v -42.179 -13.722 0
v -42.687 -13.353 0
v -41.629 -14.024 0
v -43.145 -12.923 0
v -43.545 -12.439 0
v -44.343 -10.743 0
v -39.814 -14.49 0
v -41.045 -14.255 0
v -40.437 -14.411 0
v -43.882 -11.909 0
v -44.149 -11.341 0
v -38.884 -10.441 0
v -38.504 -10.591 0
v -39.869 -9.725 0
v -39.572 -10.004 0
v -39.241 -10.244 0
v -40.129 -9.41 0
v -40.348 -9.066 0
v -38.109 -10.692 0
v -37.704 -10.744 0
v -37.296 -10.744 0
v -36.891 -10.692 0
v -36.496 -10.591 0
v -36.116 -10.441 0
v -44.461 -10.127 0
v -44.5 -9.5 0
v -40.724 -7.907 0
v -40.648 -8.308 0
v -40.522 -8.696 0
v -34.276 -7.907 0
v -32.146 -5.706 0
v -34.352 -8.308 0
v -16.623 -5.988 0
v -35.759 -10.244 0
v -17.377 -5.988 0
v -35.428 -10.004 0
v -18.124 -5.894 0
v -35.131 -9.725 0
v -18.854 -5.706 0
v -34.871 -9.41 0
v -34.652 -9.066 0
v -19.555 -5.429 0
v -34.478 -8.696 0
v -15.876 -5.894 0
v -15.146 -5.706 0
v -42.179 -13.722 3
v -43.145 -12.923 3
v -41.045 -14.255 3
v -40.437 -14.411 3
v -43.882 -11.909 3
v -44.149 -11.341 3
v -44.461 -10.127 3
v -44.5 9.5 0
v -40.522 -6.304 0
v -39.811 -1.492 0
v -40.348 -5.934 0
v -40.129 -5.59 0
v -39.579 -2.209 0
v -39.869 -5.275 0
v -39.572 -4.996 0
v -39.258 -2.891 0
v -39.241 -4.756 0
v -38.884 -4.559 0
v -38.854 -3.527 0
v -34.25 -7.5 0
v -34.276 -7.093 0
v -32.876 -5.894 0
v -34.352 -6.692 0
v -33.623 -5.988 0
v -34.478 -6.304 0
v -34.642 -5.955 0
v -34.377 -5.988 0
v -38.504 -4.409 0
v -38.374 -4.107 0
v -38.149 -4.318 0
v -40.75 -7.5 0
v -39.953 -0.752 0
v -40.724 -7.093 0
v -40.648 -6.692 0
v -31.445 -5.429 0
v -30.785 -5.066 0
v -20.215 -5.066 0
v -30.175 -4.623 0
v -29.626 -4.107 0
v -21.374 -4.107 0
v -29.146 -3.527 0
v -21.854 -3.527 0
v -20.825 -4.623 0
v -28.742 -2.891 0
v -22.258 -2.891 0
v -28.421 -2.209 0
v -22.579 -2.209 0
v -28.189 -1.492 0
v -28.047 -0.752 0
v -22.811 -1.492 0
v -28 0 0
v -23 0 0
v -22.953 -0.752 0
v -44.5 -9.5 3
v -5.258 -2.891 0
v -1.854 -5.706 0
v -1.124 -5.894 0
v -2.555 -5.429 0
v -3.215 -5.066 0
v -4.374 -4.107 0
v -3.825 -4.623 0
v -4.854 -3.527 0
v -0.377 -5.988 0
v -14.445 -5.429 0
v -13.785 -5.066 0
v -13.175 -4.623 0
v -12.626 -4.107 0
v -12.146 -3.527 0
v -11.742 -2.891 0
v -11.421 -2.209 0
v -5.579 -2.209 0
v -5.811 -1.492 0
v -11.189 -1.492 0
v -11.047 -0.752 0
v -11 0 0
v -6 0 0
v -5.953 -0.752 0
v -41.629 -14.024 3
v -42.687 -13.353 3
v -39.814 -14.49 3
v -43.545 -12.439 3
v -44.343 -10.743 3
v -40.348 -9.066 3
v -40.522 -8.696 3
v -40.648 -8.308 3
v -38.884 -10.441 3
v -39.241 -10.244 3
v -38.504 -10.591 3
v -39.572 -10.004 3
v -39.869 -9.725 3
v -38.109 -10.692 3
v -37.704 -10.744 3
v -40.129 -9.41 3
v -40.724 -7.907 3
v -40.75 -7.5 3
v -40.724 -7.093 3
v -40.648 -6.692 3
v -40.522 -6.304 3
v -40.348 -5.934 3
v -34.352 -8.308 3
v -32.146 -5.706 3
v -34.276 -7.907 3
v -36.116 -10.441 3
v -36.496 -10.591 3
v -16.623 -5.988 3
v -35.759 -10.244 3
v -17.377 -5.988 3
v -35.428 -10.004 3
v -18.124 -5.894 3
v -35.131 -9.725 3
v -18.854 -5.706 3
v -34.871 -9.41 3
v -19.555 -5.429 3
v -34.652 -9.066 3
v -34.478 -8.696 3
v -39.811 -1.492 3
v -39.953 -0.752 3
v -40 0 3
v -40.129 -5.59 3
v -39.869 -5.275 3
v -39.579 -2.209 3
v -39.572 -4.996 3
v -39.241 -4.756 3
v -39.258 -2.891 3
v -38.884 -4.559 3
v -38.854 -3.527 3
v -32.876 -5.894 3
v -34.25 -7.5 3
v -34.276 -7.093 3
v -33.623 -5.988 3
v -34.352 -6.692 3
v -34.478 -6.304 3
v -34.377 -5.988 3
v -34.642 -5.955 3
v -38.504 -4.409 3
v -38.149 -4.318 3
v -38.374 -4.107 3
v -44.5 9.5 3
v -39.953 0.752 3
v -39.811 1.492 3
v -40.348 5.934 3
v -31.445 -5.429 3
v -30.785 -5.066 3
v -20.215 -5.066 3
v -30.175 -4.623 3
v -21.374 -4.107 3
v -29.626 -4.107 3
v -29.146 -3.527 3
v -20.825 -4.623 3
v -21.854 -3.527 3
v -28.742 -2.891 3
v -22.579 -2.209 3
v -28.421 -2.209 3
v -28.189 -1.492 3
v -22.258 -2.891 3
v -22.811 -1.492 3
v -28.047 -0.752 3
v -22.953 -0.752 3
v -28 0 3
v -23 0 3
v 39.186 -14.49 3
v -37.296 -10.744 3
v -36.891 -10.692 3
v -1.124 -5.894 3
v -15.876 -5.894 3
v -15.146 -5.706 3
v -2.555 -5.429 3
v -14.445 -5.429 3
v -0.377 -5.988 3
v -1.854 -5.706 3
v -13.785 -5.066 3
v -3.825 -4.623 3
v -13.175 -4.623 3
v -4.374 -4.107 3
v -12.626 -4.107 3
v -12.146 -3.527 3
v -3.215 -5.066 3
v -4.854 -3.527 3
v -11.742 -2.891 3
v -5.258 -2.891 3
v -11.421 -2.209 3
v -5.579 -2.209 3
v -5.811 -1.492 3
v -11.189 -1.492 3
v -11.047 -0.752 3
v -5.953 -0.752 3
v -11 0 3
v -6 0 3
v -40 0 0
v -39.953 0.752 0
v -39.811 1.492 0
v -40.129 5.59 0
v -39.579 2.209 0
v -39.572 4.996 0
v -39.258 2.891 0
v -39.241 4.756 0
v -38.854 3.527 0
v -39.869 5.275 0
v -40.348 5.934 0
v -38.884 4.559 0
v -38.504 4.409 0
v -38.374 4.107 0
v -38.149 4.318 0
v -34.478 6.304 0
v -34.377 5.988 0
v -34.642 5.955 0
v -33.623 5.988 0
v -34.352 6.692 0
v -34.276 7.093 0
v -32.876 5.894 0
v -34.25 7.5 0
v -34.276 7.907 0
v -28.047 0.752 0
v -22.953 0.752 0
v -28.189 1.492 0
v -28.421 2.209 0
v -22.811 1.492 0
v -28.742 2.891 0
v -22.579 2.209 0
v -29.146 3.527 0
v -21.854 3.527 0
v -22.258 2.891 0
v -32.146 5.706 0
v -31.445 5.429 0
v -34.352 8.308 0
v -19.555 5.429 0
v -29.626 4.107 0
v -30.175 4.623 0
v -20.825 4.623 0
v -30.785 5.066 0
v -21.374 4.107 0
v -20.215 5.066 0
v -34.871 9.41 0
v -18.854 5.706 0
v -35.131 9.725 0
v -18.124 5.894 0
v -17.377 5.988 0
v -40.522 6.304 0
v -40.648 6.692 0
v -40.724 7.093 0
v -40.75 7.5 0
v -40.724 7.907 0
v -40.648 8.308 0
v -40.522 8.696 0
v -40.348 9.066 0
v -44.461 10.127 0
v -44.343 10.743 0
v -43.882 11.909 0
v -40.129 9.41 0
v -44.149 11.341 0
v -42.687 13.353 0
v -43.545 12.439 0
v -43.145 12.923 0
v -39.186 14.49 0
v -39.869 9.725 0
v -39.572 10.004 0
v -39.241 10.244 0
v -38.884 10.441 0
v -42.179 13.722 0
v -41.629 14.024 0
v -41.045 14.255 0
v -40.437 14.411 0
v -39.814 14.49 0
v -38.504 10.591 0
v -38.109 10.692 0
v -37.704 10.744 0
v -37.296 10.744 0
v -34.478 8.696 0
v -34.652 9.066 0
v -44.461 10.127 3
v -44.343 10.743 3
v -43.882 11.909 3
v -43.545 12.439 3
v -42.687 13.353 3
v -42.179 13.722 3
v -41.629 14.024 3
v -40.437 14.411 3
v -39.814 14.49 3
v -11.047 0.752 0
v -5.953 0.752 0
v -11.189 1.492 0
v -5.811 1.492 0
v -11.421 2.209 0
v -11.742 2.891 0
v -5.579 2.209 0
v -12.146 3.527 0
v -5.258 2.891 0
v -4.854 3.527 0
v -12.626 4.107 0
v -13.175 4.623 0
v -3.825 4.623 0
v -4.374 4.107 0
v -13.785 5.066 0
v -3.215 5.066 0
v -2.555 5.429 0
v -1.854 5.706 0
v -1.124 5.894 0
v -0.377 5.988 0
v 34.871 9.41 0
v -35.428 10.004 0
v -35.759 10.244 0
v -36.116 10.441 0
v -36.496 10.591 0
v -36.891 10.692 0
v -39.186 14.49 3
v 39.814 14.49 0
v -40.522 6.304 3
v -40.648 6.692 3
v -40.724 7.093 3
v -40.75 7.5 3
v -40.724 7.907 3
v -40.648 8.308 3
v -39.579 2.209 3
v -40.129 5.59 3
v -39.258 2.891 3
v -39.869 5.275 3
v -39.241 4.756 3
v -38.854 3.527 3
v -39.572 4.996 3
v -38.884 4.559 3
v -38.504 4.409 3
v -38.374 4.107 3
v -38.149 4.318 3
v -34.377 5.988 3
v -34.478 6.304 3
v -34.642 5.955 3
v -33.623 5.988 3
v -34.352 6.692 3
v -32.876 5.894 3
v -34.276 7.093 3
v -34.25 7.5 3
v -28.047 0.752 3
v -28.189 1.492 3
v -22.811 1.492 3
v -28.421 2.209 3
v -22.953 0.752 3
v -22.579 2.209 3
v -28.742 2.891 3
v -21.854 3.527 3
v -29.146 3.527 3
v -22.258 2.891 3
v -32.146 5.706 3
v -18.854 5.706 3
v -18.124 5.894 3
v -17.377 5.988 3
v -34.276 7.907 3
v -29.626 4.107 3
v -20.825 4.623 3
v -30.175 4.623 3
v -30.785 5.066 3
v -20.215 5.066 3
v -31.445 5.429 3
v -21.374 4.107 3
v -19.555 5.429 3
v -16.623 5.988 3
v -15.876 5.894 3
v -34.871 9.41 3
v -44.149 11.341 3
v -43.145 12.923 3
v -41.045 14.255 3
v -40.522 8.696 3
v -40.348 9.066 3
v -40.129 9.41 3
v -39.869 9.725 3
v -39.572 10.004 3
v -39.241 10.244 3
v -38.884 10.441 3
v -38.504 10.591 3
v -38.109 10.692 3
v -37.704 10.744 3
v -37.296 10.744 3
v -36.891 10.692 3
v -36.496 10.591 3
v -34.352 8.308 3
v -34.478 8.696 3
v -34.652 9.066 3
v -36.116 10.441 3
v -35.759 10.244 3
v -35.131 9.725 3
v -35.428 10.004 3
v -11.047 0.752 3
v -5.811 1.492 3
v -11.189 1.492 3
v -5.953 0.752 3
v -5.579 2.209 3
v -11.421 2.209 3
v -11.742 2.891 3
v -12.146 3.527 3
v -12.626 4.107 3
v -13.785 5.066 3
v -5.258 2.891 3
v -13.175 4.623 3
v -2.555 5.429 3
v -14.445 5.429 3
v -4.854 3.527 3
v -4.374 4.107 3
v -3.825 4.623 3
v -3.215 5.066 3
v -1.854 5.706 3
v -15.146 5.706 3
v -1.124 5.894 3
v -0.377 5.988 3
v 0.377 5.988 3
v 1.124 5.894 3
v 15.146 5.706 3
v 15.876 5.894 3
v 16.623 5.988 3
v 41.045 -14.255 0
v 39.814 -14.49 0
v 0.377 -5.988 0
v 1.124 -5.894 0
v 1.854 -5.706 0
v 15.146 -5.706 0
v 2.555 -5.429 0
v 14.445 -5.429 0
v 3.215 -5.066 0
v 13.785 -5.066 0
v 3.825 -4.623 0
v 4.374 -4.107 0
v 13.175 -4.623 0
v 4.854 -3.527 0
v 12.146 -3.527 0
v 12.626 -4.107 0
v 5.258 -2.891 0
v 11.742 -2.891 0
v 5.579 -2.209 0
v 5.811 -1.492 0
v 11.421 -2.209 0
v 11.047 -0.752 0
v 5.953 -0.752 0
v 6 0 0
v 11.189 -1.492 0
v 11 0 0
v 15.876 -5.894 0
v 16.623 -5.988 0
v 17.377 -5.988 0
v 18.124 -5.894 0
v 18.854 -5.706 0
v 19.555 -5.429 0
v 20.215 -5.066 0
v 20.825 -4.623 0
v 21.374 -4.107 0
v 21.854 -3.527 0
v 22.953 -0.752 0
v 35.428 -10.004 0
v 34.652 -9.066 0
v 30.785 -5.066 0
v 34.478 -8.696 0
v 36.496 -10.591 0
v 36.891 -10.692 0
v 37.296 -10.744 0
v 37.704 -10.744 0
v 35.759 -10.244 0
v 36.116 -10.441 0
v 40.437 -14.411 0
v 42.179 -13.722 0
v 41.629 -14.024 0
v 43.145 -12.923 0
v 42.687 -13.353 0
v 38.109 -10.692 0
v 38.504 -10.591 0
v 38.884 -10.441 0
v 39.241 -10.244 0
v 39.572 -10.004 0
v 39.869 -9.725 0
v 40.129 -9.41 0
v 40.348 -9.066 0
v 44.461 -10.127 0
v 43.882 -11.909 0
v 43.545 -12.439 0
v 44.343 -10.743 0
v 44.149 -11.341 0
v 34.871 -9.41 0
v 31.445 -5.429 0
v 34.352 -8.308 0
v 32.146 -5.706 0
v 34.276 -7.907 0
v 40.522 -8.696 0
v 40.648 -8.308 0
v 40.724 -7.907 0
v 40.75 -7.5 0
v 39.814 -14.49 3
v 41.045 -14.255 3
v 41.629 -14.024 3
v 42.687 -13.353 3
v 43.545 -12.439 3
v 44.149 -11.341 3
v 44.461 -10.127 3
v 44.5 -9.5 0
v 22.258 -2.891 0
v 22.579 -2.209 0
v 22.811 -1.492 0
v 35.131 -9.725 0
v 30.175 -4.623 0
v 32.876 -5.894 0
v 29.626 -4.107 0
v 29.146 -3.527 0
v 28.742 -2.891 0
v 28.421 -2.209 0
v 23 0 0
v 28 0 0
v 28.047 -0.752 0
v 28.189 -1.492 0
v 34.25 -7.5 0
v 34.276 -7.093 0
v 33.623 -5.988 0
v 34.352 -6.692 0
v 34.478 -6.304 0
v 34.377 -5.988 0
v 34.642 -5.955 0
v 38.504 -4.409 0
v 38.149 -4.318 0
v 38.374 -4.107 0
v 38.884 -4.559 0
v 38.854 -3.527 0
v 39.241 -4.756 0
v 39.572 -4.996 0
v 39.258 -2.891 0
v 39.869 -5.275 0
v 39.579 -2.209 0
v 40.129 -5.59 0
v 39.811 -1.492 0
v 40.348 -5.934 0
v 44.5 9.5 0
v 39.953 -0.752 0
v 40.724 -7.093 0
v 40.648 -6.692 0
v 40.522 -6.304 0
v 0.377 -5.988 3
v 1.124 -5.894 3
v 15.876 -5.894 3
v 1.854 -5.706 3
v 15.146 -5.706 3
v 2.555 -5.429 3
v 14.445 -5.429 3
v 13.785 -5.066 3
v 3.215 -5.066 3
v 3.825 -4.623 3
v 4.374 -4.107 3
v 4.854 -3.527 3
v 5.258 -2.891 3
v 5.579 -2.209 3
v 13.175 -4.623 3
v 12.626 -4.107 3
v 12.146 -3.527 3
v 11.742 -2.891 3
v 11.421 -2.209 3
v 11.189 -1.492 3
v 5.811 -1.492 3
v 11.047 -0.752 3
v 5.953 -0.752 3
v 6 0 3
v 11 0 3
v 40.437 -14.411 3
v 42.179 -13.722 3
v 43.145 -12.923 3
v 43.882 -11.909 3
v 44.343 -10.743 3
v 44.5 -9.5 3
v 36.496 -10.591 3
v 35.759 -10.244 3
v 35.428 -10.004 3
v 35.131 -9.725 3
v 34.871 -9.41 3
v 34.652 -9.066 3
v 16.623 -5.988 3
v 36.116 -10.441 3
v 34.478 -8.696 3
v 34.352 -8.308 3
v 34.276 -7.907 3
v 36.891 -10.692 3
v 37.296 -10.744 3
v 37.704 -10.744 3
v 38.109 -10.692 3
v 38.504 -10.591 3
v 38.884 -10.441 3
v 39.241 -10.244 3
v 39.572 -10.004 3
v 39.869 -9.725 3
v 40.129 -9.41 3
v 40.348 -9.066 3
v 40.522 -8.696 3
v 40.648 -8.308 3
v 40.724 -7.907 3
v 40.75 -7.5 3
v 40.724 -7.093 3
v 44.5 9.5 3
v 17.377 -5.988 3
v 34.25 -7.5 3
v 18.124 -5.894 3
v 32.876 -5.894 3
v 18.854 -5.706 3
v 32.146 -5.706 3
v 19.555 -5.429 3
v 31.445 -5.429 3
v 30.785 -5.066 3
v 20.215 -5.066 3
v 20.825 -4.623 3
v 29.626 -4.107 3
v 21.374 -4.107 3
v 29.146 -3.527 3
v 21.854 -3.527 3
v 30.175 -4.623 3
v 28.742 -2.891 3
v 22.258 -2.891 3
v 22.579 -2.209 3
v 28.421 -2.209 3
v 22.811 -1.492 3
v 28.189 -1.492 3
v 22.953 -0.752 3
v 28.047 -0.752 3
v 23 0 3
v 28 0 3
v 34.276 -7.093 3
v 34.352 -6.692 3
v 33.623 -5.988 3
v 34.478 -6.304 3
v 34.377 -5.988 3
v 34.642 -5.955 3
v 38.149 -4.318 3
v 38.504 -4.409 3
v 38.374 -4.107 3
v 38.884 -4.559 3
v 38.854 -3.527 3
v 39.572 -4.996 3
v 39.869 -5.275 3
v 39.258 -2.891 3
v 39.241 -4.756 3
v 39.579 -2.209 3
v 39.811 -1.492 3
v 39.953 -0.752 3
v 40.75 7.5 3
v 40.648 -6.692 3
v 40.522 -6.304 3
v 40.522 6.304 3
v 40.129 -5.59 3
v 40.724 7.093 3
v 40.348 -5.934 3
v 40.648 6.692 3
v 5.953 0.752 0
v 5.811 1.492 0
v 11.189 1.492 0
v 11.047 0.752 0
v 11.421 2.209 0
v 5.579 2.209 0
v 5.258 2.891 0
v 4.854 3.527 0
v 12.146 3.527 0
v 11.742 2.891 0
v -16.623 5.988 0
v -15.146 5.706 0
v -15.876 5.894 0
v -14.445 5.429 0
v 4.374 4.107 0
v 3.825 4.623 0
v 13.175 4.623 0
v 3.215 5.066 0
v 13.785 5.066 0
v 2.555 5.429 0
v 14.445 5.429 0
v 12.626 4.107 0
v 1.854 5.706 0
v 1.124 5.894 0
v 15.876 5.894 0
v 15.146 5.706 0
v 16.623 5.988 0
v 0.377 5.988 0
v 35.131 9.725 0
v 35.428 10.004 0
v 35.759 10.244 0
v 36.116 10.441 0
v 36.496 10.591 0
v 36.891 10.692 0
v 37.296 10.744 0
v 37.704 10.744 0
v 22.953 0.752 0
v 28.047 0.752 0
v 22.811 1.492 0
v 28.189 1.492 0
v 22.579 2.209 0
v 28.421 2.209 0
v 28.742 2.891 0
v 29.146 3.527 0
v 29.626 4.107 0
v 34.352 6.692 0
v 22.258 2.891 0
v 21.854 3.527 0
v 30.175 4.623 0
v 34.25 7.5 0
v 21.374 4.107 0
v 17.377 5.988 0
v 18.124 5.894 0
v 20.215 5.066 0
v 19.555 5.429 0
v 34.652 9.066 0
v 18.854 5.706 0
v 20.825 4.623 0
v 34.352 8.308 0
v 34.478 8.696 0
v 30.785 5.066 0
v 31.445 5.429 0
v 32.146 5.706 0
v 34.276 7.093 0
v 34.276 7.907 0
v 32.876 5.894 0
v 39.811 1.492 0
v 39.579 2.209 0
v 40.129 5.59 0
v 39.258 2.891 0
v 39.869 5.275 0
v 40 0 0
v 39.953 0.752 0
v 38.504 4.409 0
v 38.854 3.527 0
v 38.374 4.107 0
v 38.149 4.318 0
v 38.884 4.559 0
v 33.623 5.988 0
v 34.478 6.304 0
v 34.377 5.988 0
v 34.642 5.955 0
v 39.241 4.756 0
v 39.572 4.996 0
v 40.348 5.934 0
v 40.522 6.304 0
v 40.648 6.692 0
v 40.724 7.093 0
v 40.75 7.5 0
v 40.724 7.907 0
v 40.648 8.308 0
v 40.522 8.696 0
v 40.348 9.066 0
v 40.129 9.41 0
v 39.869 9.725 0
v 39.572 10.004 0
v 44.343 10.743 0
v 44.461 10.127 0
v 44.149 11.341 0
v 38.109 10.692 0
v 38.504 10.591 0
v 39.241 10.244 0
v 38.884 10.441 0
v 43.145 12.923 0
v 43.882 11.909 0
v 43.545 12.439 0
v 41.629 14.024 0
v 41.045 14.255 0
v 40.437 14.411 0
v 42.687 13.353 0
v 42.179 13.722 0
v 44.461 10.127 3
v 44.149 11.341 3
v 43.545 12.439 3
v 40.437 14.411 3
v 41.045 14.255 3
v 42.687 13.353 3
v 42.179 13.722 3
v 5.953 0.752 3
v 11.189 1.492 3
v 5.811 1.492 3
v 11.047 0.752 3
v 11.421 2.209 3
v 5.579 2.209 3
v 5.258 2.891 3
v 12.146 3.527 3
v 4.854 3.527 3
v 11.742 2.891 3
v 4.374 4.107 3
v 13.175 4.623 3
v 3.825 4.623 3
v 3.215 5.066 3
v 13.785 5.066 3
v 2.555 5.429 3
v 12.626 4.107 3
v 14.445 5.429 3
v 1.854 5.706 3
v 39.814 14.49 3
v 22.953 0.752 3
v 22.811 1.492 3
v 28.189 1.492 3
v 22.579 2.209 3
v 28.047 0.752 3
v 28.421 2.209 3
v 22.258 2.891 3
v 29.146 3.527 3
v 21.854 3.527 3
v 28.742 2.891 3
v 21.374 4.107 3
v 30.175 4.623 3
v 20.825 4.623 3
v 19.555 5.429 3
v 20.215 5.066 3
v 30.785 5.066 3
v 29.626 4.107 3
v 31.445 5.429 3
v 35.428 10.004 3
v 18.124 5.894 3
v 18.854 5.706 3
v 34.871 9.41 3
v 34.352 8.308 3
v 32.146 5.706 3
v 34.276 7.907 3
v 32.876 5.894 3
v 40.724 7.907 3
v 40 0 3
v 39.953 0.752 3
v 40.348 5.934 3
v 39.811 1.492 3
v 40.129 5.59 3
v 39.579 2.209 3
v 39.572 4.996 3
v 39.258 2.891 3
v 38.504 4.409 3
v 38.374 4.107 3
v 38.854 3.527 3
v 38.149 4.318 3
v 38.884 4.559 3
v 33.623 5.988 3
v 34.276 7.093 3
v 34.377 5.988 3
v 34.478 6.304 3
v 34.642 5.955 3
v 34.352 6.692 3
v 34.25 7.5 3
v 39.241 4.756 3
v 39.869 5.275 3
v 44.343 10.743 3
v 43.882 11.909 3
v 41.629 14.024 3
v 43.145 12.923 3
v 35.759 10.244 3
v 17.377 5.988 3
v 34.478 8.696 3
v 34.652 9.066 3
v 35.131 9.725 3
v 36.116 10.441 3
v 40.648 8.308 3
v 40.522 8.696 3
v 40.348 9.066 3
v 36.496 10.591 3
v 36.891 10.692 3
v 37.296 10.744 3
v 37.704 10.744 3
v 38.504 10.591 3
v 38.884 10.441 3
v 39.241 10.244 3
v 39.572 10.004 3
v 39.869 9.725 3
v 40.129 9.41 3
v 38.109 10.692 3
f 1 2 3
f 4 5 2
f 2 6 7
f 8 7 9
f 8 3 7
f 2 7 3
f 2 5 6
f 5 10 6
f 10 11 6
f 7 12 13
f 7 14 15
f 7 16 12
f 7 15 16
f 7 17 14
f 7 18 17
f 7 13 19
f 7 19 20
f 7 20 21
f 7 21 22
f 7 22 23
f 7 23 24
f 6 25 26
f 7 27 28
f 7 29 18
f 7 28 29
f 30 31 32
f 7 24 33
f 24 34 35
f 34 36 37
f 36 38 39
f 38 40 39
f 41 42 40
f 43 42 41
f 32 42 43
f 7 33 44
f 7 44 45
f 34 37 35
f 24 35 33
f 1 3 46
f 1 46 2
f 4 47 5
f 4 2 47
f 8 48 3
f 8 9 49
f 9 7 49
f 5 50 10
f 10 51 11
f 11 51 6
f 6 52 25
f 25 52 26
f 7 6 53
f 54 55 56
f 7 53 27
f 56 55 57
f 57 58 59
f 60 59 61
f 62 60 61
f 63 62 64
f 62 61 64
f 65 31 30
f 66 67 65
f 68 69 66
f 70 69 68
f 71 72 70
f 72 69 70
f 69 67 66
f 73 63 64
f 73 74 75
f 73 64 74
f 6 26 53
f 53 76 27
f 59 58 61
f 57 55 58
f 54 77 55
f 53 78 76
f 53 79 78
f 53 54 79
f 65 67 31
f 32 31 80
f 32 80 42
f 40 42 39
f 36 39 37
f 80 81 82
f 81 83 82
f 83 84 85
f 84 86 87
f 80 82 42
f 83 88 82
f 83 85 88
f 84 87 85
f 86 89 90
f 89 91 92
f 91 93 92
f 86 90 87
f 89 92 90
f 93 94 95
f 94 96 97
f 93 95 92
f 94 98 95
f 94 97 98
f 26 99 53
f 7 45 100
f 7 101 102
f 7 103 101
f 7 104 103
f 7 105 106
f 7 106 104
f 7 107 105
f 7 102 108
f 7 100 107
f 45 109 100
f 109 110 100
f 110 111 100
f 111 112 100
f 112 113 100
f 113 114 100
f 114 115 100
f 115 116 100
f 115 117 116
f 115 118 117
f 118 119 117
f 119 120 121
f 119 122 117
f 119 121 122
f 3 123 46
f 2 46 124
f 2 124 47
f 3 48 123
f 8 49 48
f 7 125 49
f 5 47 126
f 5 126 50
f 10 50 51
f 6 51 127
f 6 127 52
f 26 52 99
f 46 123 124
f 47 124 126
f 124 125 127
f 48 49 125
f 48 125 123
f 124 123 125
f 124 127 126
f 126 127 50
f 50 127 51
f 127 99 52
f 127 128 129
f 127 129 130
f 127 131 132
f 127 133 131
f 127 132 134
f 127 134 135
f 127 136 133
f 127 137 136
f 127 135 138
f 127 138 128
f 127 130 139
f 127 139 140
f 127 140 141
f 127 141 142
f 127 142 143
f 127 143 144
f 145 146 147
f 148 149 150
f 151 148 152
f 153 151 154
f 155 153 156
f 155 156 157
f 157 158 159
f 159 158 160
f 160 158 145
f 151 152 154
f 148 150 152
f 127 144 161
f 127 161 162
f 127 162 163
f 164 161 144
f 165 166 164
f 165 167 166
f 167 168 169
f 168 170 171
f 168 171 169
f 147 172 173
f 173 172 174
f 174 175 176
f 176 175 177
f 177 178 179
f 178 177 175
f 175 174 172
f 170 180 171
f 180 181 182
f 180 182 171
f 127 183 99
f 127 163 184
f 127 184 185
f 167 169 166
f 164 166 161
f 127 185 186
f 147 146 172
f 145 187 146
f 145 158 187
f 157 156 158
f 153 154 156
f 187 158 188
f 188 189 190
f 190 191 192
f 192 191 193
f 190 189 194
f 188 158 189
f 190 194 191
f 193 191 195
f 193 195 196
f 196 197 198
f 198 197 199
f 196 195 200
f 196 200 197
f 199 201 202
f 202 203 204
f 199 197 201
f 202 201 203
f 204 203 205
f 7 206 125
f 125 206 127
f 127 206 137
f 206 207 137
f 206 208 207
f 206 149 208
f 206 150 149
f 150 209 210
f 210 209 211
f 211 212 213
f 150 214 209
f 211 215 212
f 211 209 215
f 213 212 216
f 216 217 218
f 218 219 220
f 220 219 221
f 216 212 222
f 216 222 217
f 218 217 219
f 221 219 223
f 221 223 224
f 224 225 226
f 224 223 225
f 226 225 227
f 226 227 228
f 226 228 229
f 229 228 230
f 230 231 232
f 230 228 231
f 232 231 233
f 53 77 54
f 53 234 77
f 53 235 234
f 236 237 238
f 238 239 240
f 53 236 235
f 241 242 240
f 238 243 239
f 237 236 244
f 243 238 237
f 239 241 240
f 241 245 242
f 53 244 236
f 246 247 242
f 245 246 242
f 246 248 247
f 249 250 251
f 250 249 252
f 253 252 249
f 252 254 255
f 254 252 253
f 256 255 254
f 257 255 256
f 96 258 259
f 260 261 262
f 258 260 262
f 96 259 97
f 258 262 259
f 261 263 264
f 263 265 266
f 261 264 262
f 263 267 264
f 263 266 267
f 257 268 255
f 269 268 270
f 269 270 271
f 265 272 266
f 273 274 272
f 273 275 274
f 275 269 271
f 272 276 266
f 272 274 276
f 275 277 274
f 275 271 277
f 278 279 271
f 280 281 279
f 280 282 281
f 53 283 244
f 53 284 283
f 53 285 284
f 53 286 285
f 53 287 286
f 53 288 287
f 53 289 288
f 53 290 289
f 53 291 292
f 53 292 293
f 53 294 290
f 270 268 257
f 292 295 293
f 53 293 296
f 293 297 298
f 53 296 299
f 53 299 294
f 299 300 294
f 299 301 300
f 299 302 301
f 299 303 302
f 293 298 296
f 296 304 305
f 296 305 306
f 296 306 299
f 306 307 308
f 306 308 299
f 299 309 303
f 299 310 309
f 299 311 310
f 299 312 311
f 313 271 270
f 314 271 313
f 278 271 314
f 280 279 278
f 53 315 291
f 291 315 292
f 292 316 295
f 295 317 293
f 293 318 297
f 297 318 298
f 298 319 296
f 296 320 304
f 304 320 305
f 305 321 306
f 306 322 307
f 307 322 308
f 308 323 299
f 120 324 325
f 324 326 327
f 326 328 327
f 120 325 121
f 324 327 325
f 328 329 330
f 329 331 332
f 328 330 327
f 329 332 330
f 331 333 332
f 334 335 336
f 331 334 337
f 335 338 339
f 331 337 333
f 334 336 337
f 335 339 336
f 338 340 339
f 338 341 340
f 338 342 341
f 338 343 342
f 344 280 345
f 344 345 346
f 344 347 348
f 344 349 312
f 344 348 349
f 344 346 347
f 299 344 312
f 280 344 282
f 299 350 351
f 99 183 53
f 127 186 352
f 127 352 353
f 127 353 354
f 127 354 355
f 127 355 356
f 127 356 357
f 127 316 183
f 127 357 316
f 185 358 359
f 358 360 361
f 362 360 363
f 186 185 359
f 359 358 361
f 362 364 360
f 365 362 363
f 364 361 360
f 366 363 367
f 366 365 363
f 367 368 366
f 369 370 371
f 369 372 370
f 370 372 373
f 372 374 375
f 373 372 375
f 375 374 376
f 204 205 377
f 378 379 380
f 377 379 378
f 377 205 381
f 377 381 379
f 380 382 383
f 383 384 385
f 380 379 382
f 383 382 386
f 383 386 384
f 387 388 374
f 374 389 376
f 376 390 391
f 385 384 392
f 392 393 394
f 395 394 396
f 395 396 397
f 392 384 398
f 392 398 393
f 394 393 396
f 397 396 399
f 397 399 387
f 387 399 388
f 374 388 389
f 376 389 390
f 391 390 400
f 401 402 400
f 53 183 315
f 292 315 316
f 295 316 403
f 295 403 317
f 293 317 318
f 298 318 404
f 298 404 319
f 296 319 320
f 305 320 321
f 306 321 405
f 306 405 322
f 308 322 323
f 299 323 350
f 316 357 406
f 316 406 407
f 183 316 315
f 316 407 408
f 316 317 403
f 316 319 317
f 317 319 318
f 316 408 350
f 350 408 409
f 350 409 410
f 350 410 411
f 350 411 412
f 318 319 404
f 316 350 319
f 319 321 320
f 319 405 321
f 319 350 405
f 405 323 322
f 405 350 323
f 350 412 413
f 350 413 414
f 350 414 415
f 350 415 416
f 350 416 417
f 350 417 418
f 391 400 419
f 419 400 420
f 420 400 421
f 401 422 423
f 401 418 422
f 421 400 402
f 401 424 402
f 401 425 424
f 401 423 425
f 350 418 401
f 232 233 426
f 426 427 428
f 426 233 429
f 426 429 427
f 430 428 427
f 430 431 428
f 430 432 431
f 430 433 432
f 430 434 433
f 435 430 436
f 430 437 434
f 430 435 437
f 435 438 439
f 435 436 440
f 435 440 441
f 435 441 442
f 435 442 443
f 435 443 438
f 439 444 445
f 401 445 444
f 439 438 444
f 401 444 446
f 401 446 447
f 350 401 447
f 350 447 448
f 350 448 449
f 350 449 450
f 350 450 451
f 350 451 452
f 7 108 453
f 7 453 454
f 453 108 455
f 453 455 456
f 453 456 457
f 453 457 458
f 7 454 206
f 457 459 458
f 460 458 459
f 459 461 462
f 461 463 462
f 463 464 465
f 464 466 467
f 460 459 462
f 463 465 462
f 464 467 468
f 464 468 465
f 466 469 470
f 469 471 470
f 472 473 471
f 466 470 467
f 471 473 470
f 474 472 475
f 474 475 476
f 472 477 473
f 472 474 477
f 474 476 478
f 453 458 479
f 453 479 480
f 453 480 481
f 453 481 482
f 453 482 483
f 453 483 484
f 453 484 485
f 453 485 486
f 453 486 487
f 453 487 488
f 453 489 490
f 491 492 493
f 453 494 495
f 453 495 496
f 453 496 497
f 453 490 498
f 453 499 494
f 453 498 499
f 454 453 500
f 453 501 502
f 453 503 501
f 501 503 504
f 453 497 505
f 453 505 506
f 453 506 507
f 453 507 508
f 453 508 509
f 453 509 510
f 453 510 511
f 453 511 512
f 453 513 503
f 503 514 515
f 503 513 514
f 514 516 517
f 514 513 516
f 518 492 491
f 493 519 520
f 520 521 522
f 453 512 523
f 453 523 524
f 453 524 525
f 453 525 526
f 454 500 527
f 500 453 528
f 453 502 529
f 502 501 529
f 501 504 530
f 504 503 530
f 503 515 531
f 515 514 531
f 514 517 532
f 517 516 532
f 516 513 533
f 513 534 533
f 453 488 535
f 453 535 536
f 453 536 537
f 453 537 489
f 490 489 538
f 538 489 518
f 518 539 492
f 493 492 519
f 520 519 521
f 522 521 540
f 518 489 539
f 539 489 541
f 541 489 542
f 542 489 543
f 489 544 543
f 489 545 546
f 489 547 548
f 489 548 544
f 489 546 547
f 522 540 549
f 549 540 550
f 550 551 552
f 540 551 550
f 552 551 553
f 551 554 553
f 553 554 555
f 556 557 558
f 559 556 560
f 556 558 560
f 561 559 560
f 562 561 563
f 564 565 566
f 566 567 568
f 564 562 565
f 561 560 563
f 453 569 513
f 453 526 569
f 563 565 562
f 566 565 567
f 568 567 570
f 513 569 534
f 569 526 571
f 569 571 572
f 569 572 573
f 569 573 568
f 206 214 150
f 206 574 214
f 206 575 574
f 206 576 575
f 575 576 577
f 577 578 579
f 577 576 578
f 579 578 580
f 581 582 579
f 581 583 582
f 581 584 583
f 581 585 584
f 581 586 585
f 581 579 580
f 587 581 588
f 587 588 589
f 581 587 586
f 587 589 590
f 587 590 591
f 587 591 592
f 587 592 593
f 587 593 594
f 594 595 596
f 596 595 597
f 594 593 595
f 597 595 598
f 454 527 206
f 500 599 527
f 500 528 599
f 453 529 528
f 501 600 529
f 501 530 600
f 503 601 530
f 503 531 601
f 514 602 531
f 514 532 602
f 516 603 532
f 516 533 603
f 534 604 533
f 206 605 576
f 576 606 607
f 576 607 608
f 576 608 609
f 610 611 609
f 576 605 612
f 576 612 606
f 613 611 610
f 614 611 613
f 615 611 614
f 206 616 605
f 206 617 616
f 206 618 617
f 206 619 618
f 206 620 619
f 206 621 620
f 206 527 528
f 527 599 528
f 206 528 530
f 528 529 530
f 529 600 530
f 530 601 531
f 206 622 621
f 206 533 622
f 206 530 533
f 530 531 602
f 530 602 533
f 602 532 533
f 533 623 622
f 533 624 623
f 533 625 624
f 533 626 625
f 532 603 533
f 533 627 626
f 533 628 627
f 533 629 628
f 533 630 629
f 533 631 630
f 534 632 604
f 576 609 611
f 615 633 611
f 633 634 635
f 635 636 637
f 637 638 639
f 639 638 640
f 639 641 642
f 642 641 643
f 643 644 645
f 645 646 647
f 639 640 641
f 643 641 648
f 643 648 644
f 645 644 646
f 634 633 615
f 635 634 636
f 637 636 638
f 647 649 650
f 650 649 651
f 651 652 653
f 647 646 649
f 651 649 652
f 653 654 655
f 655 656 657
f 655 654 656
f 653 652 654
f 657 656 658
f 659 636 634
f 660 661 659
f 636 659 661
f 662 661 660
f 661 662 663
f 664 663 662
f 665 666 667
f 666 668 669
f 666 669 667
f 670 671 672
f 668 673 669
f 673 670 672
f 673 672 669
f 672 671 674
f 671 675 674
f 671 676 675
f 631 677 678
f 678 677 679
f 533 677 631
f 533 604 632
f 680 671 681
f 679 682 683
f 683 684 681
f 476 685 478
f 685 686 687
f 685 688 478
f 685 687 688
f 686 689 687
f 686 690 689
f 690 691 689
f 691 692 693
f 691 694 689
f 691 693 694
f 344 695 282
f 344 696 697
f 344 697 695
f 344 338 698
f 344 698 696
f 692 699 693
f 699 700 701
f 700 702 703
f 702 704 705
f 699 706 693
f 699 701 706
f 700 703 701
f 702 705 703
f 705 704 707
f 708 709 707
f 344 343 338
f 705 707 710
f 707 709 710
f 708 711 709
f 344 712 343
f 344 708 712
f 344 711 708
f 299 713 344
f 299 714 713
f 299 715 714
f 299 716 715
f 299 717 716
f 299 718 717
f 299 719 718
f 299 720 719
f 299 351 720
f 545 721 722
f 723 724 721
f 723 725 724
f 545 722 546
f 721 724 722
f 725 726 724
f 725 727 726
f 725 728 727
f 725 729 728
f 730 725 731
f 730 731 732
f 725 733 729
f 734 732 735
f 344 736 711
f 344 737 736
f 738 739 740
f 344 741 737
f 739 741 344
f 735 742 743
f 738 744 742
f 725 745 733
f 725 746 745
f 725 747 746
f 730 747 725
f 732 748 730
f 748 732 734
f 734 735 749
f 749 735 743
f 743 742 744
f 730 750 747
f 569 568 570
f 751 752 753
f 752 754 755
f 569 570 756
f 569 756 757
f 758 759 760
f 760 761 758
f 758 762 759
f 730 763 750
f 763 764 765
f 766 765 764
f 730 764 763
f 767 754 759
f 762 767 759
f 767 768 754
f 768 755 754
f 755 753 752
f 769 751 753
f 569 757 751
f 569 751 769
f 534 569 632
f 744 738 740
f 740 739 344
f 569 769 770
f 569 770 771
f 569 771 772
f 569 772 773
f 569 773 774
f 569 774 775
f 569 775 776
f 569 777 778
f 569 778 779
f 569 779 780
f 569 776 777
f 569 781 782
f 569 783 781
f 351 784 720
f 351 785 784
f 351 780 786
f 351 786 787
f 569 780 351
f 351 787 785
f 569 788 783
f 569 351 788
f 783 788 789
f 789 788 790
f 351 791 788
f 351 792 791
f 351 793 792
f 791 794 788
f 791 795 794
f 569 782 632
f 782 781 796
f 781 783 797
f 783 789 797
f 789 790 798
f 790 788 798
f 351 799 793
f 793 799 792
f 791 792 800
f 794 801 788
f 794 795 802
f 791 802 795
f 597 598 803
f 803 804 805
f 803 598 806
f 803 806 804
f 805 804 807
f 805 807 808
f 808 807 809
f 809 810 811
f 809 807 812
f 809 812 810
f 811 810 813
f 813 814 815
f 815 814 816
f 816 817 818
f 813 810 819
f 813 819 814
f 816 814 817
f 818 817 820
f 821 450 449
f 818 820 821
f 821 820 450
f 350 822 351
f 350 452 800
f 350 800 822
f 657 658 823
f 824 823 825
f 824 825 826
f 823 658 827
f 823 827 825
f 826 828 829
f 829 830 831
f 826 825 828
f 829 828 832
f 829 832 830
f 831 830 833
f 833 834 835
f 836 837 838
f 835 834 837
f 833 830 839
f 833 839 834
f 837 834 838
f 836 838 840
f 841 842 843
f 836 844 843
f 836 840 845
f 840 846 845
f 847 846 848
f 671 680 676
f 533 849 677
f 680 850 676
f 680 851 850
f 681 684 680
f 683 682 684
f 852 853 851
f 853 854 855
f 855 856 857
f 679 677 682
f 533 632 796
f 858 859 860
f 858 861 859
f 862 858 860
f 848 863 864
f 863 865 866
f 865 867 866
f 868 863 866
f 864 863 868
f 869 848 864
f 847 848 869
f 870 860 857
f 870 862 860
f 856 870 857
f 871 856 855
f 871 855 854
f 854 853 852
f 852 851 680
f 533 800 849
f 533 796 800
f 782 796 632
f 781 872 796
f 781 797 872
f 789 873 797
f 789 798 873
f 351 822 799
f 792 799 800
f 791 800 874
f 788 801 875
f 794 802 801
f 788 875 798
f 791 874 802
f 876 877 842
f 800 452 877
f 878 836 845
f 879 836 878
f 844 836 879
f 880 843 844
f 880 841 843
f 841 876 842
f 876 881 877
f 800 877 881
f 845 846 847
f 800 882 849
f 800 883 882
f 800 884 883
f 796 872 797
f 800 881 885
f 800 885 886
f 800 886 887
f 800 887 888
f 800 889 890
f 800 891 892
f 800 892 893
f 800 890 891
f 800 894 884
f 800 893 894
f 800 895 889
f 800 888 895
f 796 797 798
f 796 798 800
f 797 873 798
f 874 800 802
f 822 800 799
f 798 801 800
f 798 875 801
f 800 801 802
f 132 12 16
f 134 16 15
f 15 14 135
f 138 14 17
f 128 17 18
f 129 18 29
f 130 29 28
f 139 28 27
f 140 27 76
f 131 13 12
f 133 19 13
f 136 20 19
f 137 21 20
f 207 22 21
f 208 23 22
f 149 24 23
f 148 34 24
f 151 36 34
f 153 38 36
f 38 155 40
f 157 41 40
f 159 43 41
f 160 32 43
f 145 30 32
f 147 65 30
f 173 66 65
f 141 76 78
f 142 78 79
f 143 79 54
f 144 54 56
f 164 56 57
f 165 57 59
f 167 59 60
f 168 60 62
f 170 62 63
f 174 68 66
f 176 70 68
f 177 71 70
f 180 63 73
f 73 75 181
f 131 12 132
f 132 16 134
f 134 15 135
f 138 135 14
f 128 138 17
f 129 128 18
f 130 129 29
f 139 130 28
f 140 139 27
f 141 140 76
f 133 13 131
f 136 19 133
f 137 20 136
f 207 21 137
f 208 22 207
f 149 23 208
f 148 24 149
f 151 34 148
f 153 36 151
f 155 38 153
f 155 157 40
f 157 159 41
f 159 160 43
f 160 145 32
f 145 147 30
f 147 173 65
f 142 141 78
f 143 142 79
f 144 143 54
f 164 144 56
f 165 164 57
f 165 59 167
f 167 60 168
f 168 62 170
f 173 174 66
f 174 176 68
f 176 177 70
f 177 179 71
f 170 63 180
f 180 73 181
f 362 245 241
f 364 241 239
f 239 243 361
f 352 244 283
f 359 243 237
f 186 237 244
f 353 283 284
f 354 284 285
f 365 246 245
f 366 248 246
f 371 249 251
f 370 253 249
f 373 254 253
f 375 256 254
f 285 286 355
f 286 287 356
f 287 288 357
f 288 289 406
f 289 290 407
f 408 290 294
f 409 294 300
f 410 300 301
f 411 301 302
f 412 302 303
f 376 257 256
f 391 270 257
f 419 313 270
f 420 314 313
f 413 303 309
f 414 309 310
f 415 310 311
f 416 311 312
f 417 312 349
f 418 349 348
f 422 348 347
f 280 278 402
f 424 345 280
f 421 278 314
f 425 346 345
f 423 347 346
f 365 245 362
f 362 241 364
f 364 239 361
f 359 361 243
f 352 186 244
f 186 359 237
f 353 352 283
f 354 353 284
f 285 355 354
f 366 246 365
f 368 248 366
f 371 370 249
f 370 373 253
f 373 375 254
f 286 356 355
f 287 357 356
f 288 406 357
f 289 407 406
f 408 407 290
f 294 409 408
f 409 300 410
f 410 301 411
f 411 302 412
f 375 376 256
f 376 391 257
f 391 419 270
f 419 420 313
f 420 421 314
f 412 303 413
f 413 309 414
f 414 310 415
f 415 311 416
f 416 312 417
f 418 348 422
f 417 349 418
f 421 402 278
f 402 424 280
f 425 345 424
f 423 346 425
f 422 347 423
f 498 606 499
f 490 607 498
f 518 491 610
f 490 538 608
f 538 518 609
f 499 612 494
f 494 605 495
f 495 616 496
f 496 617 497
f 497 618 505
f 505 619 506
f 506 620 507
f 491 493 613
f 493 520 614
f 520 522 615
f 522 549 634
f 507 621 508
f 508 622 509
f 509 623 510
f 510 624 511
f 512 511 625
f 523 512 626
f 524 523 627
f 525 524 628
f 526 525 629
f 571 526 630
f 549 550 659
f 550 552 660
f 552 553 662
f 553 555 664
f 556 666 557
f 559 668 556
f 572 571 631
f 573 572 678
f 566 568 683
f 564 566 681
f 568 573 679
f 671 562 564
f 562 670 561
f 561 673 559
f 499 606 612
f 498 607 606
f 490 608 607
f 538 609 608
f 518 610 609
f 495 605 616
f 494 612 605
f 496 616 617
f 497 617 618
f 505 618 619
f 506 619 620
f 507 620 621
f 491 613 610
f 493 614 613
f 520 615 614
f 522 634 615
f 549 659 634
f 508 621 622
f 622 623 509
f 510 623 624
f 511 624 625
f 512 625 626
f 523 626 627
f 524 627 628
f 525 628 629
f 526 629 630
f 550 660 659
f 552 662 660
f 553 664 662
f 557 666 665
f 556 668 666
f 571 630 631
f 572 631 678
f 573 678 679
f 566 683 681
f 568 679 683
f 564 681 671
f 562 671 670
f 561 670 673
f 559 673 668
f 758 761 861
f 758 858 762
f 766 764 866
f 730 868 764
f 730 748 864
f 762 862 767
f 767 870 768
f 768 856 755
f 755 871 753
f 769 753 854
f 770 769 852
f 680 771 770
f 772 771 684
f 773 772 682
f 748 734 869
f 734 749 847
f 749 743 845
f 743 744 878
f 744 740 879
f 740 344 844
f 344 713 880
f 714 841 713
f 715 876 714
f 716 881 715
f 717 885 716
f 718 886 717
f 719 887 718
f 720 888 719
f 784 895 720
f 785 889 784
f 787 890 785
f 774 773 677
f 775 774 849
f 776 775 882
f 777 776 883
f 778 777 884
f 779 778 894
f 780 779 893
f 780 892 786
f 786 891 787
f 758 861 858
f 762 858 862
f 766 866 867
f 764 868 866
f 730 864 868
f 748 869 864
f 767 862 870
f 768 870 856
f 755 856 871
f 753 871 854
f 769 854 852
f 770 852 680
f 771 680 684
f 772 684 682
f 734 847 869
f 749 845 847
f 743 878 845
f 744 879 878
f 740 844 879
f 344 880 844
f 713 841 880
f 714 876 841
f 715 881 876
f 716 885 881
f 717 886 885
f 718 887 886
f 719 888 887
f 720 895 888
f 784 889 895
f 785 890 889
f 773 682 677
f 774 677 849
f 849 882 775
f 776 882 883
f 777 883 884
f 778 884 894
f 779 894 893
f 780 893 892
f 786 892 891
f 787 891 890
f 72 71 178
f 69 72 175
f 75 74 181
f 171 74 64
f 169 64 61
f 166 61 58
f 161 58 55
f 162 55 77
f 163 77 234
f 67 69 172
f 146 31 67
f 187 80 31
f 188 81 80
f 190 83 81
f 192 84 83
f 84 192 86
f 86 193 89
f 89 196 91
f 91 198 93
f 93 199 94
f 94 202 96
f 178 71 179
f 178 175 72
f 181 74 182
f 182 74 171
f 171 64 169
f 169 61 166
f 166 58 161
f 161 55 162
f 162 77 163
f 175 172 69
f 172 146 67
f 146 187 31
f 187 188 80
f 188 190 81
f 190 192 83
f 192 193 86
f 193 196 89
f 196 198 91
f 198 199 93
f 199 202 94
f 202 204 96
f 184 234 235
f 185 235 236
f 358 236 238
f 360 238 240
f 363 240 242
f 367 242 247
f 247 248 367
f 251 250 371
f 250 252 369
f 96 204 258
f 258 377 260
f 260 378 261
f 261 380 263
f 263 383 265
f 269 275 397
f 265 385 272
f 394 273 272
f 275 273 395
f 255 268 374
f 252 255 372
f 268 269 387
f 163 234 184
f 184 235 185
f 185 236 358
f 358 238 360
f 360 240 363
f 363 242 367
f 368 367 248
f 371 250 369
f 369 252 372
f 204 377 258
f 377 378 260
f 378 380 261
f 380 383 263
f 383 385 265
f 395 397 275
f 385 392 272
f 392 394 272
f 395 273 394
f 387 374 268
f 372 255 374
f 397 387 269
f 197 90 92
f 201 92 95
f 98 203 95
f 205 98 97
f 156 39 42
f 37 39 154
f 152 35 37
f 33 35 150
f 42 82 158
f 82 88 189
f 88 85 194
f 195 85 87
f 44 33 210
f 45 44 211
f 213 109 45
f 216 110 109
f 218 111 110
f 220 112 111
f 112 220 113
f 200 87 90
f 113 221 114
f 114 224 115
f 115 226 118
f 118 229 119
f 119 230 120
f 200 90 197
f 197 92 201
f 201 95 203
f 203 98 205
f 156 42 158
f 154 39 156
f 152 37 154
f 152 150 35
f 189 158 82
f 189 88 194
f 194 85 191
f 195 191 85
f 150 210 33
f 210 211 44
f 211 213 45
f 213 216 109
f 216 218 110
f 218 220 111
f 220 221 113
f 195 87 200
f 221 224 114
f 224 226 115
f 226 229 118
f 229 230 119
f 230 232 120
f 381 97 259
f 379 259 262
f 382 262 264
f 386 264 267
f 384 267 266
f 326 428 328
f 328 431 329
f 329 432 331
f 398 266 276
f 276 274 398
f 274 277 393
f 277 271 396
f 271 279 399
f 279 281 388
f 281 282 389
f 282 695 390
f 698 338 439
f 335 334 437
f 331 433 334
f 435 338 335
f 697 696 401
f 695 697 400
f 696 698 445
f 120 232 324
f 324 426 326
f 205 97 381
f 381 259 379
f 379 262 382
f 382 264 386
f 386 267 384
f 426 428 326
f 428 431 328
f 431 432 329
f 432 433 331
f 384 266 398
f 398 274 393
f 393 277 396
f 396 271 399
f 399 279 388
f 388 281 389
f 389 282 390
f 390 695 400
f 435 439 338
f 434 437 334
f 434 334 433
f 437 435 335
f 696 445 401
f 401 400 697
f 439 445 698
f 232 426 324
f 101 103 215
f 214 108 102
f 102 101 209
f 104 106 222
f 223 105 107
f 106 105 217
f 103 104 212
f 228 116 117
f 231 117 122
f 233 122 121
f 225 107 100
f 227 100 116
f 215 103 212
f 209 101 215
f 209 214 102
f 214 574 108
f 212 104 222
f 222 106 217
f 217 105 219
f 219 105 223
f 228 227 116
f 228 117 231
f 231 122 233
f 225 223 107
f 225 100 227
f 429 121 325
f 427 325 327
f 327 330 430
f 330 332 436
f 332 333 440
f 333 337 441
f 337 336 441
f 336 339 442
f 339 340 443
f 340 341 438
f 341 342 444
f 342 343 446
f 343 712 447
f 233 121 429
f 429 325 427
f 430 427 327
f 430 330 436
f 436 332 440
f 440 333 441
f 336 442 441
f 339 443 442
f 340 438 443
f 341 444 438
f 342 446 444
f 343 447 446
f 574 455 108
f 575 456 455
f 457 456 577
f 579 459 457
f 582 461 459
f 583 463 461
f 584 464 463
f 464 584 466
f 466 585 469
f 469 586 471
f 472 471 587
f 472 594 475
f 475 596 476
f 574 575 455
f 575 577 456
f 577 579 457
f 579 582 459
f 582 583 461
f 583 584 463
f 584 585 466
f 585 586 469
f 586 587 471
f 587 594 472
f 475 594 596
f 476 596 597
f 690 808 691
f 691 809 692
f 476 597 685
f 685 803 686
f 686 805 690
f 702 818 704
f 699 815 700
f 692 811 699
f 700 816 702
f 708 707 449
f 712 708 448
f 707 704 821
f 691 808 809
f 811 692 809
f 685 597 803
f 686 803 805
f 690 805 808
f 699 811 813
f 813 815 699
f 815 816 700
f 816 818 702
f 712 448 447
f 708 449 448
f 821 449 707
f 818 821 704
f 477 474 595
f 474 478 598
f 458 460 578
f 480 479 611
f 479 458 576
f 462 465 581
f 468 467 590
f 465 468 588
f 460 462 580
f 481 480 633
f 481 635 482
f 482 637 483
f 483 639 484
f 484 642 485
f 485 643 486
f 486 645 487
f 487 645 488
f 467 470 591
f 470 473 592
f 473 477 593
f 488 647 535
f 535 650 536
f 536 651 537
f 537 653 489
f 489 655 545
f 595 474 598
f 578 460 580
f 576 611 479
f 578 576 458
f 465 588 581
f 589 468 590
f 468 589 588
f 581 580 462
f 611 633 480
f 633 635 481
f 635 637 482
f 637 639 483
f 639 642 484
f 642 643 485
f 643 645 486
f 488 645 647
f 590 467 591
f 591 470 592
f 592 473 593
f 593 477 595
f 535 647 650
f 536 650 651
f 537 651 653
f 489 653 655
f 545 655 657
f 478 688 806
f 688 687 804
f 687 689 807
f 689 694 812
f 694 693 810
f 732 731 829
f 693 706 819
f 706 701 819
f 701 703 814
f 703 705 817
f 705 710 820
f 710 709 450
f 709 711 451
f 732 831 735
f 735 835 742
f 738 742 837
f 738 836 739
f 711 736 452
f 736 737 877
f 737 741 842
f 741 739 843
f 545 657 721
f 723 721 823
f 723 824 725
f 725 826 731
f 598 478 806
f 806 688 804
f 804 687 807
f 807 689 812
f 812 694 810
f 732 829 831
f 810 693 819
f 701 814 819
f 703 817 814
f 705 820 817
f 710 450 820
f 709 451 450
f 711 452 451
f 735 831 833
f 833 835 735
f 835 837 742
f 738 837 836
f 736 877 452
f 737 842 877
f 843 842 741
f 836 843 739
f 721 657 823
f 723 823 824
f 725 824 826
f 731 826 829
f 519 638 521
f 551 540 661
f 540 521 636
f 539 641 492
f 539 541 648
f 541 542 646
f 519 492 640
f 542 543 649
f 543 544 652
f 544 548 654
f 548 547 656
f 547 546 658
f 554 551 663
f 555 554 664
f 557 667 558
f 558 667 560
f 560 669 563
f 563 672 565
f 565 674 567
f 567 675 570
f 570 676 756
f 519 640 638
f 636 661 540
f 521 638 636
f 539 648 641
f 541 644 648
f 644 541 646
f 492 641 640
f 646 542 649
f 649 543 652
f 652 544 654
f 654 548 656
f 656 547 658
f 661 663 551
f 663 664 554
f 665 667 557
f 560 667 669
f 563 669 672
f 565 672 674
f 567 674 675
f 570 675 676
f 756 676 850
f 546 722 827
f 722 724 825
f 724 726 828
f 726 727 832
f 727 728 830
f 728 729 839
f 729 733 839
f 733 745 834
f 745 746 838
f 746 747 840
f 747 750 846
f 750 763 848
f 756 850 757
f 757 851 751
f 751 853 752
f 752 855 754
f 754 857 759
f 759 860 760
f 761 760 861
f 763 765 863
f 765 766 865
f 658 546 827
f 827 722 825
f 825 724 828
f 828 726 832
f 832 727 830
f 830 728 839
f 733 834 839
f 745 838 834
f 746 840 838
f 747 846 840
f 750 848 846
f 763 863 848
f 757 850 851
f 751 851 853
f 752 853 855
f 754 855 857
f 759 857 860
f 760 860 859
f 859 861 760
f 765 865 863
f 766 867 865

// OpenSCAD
$fn = 50;

difference() {
	union() {
		hull() {
			translate(v = [-39.5, 9.5, 0]) {
				cylinder(h = 3, r = 5);
			}
			translate(v = [39.5, 9.5, 0]) {
				cylinder(h = 3, r = 5);
			}
			translate(v = [-39.5, -9.5, 0]) {
				cylinder(h = 3, r = 5);
			}
			translate(v = [39.5, -9.5, 0]) {
				cylinder(h = 3, r = 5);
			}
		}
	}
	union() {
		translate(v = [-37.5, -7.5, -100.0]) {
			cylinder(h = 200, r = 3.25);
		}
		translate(v = [-37.5, 7.5, -100.0]) {
			cylinder(h = 200, r = 3.25);
		}
		translate(v = [37.5, -7.5, -100.0]) {
			cylinder(h = 200, r = 3.25);
		}
		translate(v = [37.5, 7.5, -100.0]) {
			cylinder(h = 200, r = 3.25);
		}
		translate(v = [-37.5, -7.5, -100.0]) {
			cylinder(h = 200, r = 1.8);
		}
		translate(v = [-37.5, 7.5, -100.0]) {
			cylinder(h = 200, r = 1.8);
		}
		translate(v = [37.5, -7.5, -100.0]) {
			cylinder(h = 200, r = 1.8);
		}
		translate(v = [37.5, 7.5, -100.0]) {
			cylinder(h = 200, r = 1.8);
		}
		translate(v = [-34.0, 0, 0.0]) {
			cylinder(h = 3, r = 6.0);
		}
		translate(v = [-17.0, 0, 0.0]) {
			cylinder(h = 3, r = 6.0);
		}
		cylinder(h = 3, r = 6.0);
		translate(v = [17.0, 0, 0.0]) {
			cylinder(h = 3, r = 6.0);
		}
		translate(v = [34.0, 0, 0.0]) {
			cylinder(h = 3, r = 6.0);
		}
	}
}
